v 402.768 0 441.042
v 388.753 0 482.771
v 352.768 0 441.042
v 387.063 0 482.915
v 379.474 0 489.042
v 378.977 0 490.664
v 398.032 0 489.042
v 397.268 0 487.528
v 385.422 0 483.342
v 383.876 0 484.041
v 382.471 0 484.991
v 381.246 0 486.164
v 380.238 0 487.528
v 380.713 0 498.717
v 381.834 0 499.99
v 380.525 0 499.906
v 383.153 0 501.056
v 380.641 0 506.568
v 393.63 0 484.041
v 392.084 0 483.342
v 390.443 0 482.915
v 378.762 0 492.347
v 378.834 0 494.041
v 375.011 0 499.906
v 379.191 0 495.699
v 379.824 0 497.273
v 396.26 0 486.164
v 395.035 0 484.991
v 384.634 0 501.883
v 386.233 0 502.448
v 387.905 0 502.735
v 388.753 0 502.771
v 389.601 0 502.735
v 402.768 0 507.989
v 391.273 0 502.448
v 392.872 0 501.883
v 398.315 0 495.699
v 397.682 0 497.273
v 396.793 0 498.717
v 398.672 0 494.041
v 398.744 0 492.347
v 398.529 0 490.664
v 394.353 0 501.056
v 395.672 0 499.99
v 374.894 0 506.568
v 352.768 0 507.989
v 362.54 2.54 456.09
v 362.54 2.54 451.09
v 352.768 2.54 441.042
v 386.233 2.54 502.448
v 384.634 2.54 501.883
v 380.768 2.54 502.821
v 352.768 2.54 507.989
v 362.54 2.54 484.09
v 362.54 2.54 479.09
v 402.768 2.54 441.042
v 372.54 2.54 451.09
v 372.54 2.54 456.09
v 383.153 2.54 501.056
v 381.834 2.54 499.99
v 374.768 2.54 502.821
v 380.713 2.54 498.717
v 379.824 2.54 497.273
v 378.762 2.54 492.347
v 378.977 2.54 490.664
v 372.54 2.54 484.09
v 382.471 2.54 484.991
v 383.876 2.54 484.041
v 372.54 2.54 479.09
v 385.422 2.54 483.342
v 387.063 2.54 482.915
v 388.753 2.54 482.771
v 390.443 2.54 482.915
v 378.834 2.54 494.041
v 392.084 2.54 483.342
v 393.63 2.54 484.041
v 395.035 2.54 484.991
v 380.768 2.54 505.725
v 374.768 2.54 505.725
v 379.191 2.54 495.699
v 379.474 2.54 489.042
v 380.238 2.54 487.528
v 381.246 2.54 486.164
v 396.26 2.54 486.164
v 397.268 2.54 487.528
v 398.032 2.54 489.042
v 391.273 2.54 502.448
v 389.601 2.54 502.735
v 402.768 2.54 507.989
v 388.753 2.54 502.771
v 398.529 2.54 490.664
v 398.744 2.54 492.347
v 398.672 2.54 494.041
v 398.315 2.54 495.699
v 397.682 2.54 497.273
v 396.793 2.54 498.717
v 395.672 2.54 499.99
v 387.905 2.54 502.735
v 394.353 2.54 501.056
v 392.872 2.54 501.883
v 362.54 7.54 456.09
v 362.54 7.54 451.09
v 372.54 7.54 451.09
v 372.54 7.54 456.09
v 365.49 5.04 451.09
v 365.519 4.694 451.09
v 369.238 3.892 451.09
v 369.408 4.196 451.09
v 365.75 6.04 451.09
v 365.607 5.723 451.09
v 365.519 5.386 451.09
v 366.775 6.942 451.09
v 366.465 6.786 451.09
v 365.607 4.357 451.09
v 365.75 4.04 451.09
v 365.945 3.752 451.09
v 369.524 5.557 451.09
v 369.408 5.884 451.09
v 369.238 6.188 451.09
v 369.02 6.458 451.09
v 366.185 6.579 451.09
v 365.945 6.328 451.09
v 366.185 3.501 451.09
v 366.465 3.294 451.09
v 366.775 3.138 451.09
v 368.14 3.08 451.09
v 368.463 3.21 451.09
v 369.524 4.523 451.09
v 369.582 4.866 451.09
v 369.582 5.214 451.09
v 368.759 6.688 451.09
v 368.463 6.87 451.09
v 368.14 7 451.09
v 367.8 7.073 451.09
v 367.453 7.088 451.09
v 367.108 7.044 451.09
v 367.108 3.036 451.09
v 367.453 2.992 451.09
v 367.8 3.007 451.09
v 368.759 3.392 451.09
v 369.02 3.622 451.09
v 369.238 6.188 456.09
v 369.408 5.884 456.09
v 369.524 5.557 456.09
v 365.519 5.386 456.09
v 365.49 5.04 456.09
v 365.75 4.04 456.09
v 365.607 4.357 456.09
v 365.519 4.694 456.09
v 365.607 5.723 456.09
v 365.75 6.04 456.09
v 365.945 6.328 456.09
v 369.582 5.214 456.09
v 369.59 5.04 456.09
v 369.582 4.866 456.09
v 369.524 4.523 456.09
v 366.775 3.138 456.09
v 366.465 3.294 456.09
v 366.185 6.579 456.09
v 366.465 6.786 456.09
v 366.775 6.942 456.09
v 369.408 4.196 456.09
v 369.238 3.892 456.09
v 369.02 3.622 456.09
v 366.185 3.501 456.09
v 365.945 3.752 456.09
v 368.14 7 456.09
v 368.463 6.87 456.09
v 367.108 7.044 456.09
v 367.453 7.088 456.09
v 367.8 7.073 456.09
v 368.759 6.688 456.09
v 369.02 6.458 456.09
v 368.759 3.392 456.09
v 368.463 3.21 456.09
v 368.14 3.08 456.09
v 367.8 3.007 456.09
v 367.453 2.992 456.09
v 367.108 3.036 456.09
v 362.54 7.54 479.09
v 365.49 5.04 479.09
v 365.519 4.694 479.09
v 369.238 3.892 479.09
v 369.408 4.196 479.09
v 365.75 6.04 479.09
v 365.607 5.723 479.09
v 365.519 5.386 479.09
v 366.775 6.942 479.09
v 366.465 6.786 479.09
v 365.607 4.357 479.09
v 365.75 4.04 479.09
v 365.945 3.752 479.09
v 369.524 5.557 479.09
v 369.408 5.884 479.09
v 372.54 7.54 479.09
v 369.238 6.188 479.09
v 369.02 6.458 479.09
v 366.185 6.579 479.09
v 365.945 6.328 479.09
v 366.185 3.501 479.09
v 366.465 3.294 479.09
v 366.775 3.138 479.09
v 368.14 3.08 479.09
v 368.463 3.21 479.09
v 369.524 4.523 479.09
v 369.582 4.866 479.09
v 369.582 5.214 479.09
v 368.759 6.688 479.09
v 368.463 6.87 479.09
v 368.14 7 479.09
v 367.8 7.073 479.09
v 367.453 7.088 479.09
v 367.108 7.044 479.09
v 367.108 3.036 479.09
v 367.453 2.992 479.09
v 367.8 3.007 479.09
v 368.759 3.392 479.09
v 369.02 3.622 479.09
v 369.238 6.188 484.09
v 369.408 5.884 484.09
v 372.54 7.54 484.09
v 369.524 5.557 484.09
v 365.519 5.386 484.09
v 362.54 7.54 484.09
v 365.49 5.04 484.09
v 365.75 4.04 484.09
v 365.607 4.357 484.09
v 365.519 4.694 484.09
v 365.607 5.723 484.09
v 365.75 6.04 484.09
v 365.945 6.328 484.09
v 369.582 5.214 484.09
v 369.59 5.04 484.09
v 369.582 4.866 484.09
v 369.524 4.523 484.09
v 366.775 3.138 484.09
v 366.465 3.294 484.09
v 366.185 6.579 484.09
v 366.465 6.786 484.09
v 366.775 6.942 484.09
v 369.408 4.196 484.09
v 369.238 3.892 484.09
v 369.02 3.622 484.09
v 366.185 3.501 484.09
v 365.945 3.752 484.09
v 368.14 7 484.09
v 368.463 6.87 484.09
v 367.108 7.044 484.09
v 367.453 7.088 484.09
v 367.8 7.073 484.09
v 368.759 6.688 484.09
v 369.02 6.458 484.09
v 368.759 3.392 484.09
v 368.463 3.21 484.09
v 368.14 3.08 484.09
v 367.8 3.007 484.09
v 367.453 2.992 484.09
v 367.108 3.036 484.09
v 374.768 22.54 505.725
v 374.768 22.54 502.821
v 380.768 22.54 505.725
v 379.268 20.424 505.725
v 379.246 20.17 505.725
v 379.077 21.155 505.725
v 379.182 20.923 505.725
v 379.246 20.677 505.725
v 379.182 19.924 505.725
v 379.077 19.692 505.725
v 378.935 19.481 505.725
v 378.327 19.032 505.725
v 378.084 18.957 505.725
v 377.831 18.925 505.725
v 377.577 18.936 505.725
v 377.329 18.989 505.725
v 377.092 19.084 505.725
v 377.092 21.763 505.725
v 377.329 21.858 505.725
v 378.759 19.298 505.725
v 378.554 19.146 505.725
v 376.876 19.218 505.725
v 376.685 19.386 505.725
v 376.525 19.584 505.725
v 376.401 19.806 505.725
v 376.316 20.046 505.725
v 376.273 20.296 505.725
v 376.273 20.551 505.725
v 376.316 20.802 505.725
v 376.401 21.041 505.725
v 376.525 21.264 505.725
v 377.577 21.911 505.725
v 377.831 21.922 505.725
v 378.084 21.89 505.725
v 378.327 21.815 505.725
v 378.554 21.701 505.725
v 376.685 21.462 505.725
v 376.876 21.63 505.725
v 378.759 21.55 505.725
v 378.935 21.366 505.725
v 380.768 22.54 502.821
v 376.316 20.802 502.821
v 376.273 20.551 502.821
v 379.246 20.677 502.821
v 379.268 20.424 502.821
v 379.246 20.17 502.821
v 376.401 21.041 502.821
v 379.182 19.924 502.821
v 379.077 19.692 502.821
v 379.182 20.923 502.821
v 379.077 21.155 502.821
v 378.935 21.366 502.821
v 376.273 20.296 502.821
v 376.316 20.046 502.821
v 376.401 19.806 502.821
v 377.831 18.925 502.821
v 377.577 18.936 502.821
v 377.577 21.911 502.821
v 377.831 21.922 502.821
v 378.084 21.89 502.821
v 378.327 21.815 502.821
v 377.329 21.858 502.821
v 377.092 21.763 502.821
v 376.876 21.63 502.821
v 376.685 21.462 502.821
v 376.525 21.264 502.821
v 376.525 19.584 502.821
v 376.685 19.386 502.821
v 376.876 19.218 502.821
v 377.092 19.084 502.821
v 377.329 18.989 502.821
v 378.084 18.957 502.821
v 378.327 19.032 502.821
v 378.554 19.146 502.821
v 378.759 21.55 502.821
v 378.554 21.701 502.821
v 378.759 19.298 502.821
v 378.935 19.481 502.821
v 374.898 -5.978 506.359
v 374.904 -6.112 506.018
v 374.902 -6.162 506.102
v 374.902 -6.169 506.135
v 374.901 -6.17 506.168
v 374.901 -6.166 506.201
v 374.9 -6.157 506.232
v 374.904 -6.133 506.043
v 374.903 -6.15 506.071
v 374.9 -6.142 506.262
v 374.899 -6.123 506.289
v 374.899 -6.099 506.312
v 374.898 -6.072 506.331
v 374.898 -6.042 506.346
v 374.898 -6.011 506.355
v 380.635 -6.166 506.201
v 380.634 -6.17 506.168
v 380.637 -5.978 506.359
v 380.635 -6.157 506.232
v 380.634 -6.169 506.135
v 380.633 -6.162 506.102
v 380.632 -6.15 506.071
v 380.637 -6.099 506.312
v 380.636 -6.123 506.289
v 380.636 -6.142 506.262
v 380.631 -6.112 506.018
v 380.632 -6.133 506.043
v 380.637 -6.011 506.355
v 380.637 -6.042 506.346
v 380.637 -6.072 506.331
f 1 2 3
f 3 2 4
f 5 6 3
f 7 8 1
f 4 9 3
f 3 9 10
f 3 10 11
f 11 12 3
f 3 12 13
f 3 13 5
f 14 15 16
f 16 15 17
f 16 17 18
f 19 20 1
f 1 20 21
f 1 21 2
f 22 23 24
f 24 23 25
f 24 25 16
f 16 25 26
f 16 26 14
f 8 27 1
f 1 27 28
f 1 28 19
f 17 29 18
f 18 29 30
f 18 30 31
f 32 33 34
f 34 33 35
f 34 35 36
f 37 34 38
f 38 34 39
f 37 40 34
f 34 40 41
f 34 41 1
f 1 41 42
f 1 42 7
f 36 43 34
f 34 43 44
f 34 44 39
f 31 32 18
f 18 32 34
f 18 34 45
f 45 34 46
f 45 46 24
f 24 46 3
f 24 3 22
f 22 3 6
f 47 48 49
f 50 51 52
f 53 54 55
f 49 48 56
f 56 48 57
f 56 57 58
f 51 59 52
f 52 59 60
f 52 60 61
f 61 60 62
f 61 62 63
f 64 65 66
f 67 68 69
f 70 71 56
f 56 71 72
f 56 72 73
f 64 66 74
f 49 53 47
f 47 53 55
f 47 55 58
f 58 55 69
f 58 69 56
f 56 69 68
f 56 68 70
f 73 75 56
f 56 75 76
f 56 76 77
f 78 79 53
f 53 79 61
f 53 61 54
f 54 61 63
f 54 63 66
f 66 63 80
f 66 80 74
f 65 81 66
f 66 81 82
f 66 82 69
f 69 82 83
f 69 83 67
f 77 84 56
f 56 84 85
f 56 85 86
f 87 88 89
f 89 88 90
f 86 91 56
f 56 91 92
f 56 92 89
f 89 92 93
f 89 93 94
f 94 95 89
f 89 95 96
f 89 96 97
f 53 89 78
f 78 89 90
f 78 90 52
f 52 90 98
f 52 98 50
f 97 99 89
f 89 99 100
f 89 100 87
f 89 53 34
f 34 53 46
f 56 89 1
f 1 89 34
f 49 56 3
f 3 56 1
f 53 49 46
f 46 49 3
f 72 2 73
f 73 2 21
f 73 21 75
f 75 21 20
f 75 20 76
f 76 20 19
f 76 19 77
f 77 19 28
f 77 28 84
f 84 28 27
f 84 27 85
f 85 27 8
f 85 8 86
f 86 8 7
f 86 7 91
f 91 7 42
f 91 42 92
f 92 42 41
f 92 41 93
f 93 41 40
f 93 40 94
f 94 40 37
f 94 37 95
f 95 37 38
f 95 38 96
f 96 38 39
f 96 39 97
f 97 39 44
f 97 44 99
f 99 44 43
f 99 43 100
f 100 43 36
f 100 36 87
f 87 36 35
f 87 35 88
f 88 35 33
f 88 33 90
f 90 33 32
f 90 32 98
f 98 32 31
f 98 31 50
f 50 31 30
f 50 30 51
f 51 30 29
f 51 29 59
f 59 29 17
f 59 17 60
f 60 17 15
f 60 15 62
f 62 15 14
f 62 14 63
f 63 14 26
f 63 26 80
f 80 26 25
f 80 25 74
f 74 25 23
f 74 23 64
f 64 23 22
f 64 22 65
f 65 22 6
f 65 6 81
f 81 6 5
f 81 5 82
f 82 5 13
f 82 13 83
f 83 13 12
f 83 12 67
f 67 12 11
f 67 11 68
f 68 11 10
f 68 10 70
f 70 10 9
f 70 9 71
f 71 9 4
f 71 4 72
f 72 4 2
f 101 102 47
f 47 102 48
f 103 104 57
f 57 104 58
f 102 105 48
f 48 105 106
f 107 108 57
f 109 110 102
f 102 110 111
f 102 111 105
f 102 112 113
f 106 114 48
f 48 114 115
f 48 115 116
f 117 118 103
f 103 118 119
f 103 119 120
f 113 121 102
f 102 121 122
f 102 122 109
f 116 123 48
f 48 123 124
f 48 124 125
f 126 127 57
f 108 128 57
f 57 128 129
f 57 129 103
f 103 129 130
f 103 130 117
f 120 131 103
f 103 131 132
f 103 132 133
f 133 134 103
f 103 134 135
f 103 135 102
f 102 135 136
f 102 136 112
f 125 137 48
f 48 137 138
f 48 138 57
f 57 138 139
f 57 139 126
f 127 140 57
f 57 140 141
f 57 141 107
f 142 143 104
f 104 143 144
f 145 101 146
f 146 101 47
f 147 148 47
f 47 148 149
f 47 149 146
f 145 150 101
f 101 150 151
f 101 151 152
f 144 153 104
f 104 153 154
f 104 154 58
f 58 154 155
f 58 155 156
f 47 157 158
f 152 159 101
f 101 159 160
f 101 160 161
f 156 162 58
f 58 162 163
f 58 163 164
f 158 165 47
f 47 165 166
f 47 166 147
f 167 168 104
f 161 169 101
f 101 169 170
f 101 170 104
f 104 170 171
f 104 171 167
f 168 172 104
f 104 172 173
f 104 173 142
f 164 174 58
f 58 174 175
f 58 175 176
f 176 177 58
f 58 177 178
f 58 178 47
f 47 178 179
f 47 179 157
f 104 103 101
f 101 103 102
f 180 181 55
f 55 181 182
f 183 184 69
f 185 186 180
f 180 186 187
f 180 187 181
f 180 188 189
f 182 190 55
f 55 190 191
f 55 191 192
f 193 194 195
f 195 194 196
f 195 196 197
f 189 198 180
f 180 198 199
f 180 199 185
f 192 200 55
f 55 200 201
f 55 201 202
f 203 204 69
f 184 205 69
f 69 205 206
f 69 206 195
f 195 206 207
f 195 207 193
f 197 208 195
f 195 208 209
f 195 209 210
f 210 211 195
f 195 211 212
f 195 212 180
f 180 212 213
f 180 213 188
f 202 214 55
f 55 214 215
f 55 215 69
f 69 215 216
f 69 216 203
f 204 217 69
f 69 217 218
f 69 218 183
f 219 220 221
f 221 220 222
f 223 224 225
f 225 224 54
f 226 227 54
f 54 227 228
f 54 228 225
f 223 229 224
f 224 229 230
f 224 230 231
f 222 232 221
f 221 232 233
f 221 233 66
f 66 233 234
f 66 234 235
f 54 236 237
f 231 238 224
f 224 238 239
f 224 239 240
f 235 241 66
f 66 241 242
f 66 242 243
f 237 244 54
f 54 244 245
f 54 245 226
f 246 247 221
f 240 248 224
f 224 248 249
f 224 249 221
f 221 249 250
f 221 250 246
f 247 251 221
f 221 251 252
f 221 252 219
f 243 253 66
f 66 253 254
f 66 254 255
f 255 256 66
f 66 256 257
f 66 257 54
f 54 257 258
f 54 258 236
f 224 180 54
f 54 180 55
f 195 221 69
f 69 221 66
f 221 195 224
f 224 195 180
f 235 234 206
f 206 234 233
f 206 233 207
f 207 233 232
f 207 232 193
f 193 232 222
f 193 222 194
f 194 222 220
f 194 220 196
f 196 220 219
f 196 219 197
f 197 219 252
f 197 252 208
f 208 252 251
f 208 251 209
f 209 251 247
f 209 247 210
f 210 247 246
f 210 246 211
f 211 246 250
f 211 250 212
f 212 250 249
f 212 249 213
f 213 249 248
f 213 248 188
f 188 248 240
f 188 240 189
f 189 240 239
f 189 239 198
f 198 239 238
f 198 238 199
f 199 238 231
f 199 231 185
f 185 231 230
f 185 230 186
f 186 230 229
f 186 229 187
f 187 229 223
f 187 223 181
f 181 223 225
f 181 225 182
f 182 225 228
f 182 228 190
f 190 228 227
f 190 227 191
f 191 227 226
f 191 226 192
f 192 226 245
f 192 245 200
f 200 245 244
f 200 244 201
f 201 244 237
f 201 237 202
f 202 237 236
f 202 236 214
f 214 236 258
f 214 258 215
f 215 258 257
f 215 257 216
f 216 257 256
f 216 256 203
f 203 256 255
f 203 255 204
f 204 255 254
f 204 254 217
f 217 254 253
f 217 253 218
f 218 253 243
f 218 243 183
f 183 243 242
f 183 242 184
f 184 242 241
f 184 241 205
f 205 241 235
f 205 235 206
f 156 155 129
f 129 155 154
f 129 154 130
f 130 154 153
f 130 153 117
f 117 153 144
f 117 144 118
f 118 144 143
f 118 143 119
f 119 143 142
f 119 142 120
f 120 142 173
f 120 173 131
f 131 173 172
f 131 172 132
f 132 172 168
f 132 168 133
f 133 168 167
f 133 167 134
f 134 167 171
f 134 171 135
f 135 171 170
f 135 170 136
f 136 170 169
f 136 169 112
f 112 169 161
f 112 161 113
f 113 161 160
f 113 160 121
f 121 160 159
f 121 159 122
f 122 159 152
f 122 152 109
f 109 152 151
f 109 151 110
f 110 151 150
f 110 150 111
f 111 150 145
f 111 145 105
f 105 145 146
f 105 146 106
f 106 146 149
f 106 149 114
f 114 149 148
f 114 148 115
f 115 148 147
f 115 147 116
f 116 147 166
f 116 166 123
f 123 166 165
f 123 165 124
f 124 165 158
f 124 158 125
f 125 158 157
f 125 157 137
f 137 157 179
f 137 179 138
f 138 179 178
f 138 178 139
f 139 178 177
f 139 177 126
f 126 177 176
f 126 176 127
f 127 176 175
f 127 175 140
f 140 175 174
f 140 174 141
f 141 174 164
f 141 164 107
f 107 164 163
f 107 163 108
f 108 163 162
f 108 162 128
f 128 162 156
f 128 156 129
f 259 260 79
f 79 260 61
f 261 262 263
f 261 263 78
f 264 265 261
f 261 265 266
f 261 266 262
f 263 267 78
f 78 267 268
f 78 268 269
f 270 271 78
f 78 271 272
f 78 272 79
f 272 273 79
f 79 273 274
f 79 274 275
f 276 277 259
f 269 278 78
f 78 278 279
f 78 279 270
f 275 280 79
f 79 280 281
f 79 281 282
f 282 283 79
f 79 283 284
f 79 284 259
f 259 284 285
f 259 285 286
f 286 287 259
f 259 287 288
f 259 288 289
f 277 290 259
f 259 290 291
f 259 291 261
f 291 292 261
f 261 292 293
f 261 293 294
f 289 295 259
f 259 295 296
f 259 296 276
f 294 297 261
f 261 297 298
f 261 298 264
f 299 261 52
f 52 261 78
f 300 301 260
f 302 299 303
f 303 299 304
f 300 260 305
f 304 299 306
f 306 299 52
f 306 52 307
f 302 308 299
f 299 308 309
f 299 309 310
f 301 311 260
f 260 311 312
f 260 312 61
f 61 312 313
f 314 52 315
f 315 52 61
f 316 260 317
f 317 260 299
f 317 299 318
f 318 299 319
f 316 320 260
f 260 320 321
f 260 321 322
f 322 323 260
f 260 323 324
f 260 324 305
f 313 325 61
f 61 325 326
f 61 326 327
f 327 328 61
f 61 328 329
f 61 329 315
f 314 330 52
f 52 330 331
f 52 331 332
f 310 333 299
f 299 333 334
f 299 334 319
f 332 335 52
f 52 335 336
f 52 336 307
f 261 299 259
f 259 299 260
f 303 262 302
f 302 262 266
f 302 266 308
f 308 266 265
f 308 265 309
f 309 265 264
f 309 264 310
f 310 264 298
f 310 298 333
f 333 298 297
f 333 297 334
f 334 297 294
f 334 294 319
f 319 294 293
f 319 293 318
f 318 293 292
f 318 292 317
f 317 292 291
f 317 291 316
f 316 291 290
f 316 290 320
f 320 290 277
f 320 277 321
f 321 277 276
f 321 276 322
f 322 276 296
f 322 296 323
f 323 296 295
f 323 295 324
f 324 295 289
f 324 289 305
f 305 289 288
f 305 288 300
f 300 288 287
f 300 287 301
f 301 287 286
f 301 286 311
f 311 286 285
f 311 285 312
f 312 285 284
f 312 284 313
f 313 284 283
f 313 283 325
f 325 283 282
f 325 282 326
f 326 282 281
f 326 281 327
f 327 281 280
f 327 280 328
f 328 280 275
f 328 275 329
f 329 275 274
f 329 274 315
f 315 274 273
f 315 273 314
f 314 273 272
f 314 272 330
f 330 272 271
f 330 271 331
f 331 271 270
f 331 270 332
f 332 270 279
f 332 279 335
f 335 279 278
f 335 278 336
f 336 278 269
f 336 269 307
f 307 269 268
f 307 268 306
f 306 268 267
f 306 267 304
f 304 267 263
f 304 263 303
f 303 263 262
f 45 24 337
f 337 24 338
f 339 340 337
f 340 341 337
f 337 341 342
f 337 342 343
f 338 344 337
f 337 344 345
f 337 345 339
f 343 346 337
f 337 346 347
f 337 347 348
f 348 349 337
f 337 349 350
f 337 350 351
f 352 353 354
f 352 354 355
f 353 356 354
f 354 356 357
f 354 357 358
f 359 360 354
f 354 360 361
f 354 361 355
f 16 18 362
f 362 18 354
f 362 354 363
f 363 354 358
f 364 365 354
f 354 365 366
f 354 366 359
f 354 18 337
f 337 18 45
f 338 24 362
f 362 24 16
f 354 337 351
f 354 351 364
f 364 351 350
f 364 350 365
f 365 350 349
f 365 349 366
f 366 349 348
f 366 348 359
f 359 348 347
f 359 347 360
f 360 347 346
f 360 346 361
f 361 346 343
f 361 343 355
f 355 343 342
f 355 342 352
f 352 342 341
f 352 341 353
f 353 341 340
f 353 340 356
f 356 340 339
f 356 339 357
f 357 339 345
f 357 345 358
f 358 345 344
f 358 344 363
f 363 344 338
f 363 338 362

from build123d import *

# Parameters (mm, degrees)
SKETCH1_W                = 50
SKETCH1_H                = 66.947148402
SKETCH1_R                = 10
SKETCH1_W_2              = 10
SKETCH1_H_2              = 5
BOSS_EXTRUDE1_DEPTH      = 2.54
BOSS_EXTRUDE2_DEPTH      = 5
BOSS_EXTRUDE2_DEPTH_BACK = 2.54
SKETCH2_W                = 10
SKETCH2_H                = 5
SKETCH3_R                = 2.05
CUT_EXTRUDE1_DEPTH       = 41
SKETCH4_W                = 6
SKETCH4_H                = 2.904570335
BOSS_EXTRUDE3_DEPTH      = 20
SKETCH5_R                = 1.5
CUT_EXTRUDE2_DEPTH       = 20
SKETCH6_W                = 5.734558075
SKETCH6_H                = 6.4250327
BOSS_EXTRUDE4_DEPTH      = 10
DRAFT1_ANGLE             = -1
DRAFT2_START             = 371.742315671
DRAFT2_OUTLINE_W         = 10
DRAFT2_OUTLINE_H         = 6.426011413
DRAFT2_DEPTH             = 1.257684329
DRAFT3_START             = -2
DRAFT3_OUTLINE_W         = 9
DRAFT3_OUTLINE_H         = 10
DRAFT3_DEPTH             = 0.836252296
DRAFT4_ANGLE             = 1
CHAMFER1_SIZE            = 10
CHAMFER1_SIZE_2          = 10.179201911
FILLET2_R                = 0.2


with BuildPart() as part:
    # Sketch1 → Boss-Extrude1 (new body)
    with BuildSketch(Plane(origin=(0, 0, 0), x_dir=(1, 0, 0), z_dir=(0, 1, 0))):
        with Locations((377.767738439, -474.515341444)):
            Rectangle(SKETCH1_W, SKETCH1_H)
        with Locations(Location((388.753012651, -492.770944419, 0), (0, 0, 270))):
            Circle(SKETCH1_R, mode=Mode.SUBTRACT)
        with Locations((367.539675888, -481.590375858)):
            Rectangle(SKETCH1_W_2, SKETCH1_H_2, mode=Mode.SUBTRACT)
        with Locations((367.539675888, -453.590375858)):
            Rectangle(SKETCH1_W_2, SKETCH1_H_2, mode=Mode.SUBTRACT)
    extrude(amount=BOSS_EXTRUDE1_DEPTH)

    # Sketch2 → Boss-Extrude2 (add, two sides: drawn at the far end of the back side and taken through both)
    with BuildSketch(Plane(origin=(0, 2.54, 0), x_dir=(1, 0, 0), z_dir=(0, 1, 0)).offset(-BOSS_EXTRUDE2_DEPTH_BACK)):
        with Locations((367.539675888, -453.590375858)):
            Rectangle(SKETCH2_W, SKETCH2_H)
        with Locations((367.539675888, -481.590375858)):
            Rectangle(SKETCH2_W, SKETCH2_H)
    extrude(amount=BOSS_EXTRUDE2_DEPTH + BOSS_EXTRUDE2_DEPTH_BACK)

    # Sketch3 → Cut-Extrude1 (cut)
    with BuildSketch(Plane(origin=(0, 0, 451.090375858), x_dir=(-1, 0, 0), z_dir=(0, 0, -1))):
        with Locations((-367.539675888, 5.04)):
            Circle(SKETCH3_R)
    extrude(amount=-CUT_EXTRUDE1_DEPTH, mode=Mode.SUBTRACT)

    # Sketch4 → Boss-Extrude3 (add)
    with BuildSketch(Plane(origin=(0, 2.54, 0), x_dir=(1, 0, 0), z_dir=(0, 1, 0))):
        with Locations((377.767738439, -504.273195611)):
            Rectangle(SKETCH4_W, SKETCH4_H)
    extrude(amount=BOSS_EXTRUDE3_DEPTH)

    # Sketch5 → Cut-Extrude2 (cut)
    with BuildSketch(Plane.XY.offset(505.725480778)):
        with Locations((377.767738439, 20.423645689)):
            Circle(SKETCH5_R)
    extrude(amount=-CUT_EXTRUDE2_DEPTH, mode=Mode.SUBTRACT)

    # Sketch6 → Boss-Extrude4 (add)
    with BuildSketch(Plane(origin=(0, 0, 0), x_dir=(-1, 0, 0), z_dir=(0, -1, 0))):
        with Locations((-377.767738439, -503.005882789)):
            Rectangle(SKETCH6_W, SKETCH6_H)
    extrude(amount=BOSS_EXTRUDE4_DEPTH)

    # Draft1
    draft1_faces = [part.faces().sort_by_distance(p)[0] for p in [
        (374.900459401, -5, 503.005882789),
    ]]
    draft(draft1_faces, Plane(origin=(374.900459401, -10, 506.218399139), x_dir=(1, 0, 0), z_dir=(0, 0, 1)), DRAFT1_ANGLE)

    # Draft2: read off the stored shape, not the designer's step
    # Draft2 outline → Draft2 (cut)
    with BuildSketch(Plane(origin=(0, 0, 0), x_dir=(0, 1, 0), z_dir=(0.9998476951563913, 0, -0.017452406437283505)).offset(DRAFT2_START)):
        with Locations((-5, 509.571290948)):
            Rectangle(DRAFT2_OUTLINE_W, DRAFT2_OUTLINE_H)
    extrude(amount=DRAFT2_DEPTH, mode=Mode.SUBTRACT)

    # Draft3: read off the stored shape, not the designer's step
    # Draft3 outline → Draft3 (cut)
    with BuildSketch(Plane(origin=(0, 0, 0), x_dir=(1, 0, 0), z_dir=(0, 0.9998476951563913, 0.017452406437283505)).offset(DRAFT3_START)):
        with Locations((377.5, -503)):
            Rectangle(DRAFT3_OUTLINE_W, DRAFT3_OUTLINE_H)
    extrude(amount=DRAFT3_DEPTH, mode=Mode.SUBTRACT)

    # Draft4
    draft4_faces = [part.faces().sort_by_distance(p)[0] for p in [
        (377.767738439, -5, 506.218399139),
    ]]
    draft(draft4_faces, Plane(origin=(374.900459401, -10, 506.218399139), x_dir=(0, 0.017452406437283553, -0.9998476951563913), z_dir=(0, -0.9998476951563913, -0.017452406437283553)), DRAFT4_ANGLE)

    # Chamfer1
    # the kernel refuses this chamfer: 10.179201911, 10 mm, written as the material it takes off along each edge
    with BuildSketch(Plane(origin=(348.822826033, -9.887850637, 499.793366439), x_dir=(0, 1, 0), z_dir=(1, 0, 0))) as chamfer1_piece_1_section:
        Polygon((CHAMFER1_SIZE, 0), (-CHAMFER1_SIZE_2 * 0.0174524064368, CHAMFER1_SIZE_2 * 0.999847695128), (0, 0), align=None)
    chamfer1_piece_1 = extrude(amount=57.889824811, mode=Mode.PRIVATE)
    chamfer1_piece_1 = split(chamfer1_piece_1, bisect_by=Plane(origin=(348.822826033, 0, 499.793366439), z_dir=(0, -1, 0)), keep=Keep.TOP, mode=Mode.PRIVATE)
    add(chamfer1_piece_1, mode=Mode.SUBTRACT)

    # Fillet2
    fillet2_edges = [part.edges().sort_by_distance(p)[0] for p in [
        (377.767738438, -6.437295713, 506.342811514),
    ]]
    fillet(fillet2_edges, radius=FILLET2_R)


solid = part.part
